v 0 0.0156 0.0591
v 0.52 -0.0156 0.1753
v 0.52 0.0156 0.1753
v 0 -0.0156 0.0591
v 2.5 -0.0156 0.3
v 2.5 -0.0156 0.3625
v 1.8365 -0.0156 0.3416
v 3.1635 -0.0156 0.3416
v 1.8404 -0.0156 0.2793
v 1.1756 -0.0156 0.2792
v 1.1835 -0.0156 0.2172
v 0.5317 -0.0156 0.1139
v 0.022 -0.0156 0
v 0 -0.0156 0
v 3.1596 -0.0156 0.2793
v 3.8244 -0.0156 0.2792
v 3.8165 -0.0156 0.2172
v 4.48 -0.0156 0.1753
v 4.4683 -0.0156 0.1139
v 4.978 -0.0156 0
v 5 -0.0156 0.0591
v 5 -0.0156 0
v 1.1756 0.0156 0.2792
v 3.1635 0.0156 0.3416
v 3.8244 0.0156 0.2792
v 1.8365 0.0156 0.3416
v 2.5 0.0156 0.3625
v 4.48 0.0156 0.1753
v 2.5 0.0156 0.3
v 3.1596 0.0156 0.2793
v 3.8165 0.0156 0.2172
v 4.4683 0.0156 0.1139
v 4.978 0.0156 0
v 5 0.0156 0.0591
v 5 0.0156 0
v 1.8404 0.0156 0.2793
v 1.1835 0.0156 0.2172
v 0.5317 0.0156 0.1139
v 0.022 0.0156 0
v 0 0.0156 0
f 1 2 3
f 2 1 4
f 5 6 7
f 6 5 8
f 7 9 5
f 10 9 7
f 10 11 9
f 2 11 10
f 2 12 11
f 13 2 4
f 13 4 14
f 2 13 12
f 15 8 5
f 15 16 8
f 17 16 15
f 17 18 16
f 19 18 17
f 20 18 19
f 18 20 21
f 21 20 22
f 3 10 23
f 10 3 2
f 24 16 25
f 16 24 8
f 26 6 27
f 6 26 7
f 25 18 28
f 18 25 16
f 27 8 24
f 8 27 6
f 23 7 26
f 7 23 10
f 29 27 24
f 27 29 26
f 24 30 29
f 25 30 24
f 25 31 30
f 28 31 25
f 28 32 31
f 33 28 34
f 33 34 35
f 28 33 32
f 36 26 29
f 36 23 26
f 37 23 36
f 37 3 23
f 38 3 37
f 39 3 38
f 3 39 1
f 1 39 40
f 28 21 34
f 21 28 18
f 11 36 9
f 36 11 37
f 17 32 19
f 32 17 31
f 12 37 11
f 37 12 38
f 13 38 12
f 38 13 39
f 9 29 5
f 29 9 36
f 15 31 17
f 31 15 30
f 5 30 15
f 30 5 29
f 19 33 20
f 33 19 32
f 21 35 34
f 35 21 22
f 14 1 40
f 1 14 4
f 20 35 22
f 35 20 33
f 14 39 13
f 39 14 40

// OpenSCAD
module rib(
    chord=5,
    camber=6,
    height=1/16,
    thickness=1/32) {
  camber = camber * chord / 100;
  radius = chord * chord / (8 * camber) + camber / 2;

  rotate([90,0,0])
    translate([chord/2,-radius + camber + height,-thickness/2])
      intersection() {
        difference() {
          cylinder(r=radius,h=thickness, $fn=100);
          translate([0,0,-0.5])
            cylinder(r=radius-height, h=1, $fn=100);
        }
        translate([-chord/2,radius-camber-height,0])
          cube([chord, 1, 1]);
    }
}

rib();
